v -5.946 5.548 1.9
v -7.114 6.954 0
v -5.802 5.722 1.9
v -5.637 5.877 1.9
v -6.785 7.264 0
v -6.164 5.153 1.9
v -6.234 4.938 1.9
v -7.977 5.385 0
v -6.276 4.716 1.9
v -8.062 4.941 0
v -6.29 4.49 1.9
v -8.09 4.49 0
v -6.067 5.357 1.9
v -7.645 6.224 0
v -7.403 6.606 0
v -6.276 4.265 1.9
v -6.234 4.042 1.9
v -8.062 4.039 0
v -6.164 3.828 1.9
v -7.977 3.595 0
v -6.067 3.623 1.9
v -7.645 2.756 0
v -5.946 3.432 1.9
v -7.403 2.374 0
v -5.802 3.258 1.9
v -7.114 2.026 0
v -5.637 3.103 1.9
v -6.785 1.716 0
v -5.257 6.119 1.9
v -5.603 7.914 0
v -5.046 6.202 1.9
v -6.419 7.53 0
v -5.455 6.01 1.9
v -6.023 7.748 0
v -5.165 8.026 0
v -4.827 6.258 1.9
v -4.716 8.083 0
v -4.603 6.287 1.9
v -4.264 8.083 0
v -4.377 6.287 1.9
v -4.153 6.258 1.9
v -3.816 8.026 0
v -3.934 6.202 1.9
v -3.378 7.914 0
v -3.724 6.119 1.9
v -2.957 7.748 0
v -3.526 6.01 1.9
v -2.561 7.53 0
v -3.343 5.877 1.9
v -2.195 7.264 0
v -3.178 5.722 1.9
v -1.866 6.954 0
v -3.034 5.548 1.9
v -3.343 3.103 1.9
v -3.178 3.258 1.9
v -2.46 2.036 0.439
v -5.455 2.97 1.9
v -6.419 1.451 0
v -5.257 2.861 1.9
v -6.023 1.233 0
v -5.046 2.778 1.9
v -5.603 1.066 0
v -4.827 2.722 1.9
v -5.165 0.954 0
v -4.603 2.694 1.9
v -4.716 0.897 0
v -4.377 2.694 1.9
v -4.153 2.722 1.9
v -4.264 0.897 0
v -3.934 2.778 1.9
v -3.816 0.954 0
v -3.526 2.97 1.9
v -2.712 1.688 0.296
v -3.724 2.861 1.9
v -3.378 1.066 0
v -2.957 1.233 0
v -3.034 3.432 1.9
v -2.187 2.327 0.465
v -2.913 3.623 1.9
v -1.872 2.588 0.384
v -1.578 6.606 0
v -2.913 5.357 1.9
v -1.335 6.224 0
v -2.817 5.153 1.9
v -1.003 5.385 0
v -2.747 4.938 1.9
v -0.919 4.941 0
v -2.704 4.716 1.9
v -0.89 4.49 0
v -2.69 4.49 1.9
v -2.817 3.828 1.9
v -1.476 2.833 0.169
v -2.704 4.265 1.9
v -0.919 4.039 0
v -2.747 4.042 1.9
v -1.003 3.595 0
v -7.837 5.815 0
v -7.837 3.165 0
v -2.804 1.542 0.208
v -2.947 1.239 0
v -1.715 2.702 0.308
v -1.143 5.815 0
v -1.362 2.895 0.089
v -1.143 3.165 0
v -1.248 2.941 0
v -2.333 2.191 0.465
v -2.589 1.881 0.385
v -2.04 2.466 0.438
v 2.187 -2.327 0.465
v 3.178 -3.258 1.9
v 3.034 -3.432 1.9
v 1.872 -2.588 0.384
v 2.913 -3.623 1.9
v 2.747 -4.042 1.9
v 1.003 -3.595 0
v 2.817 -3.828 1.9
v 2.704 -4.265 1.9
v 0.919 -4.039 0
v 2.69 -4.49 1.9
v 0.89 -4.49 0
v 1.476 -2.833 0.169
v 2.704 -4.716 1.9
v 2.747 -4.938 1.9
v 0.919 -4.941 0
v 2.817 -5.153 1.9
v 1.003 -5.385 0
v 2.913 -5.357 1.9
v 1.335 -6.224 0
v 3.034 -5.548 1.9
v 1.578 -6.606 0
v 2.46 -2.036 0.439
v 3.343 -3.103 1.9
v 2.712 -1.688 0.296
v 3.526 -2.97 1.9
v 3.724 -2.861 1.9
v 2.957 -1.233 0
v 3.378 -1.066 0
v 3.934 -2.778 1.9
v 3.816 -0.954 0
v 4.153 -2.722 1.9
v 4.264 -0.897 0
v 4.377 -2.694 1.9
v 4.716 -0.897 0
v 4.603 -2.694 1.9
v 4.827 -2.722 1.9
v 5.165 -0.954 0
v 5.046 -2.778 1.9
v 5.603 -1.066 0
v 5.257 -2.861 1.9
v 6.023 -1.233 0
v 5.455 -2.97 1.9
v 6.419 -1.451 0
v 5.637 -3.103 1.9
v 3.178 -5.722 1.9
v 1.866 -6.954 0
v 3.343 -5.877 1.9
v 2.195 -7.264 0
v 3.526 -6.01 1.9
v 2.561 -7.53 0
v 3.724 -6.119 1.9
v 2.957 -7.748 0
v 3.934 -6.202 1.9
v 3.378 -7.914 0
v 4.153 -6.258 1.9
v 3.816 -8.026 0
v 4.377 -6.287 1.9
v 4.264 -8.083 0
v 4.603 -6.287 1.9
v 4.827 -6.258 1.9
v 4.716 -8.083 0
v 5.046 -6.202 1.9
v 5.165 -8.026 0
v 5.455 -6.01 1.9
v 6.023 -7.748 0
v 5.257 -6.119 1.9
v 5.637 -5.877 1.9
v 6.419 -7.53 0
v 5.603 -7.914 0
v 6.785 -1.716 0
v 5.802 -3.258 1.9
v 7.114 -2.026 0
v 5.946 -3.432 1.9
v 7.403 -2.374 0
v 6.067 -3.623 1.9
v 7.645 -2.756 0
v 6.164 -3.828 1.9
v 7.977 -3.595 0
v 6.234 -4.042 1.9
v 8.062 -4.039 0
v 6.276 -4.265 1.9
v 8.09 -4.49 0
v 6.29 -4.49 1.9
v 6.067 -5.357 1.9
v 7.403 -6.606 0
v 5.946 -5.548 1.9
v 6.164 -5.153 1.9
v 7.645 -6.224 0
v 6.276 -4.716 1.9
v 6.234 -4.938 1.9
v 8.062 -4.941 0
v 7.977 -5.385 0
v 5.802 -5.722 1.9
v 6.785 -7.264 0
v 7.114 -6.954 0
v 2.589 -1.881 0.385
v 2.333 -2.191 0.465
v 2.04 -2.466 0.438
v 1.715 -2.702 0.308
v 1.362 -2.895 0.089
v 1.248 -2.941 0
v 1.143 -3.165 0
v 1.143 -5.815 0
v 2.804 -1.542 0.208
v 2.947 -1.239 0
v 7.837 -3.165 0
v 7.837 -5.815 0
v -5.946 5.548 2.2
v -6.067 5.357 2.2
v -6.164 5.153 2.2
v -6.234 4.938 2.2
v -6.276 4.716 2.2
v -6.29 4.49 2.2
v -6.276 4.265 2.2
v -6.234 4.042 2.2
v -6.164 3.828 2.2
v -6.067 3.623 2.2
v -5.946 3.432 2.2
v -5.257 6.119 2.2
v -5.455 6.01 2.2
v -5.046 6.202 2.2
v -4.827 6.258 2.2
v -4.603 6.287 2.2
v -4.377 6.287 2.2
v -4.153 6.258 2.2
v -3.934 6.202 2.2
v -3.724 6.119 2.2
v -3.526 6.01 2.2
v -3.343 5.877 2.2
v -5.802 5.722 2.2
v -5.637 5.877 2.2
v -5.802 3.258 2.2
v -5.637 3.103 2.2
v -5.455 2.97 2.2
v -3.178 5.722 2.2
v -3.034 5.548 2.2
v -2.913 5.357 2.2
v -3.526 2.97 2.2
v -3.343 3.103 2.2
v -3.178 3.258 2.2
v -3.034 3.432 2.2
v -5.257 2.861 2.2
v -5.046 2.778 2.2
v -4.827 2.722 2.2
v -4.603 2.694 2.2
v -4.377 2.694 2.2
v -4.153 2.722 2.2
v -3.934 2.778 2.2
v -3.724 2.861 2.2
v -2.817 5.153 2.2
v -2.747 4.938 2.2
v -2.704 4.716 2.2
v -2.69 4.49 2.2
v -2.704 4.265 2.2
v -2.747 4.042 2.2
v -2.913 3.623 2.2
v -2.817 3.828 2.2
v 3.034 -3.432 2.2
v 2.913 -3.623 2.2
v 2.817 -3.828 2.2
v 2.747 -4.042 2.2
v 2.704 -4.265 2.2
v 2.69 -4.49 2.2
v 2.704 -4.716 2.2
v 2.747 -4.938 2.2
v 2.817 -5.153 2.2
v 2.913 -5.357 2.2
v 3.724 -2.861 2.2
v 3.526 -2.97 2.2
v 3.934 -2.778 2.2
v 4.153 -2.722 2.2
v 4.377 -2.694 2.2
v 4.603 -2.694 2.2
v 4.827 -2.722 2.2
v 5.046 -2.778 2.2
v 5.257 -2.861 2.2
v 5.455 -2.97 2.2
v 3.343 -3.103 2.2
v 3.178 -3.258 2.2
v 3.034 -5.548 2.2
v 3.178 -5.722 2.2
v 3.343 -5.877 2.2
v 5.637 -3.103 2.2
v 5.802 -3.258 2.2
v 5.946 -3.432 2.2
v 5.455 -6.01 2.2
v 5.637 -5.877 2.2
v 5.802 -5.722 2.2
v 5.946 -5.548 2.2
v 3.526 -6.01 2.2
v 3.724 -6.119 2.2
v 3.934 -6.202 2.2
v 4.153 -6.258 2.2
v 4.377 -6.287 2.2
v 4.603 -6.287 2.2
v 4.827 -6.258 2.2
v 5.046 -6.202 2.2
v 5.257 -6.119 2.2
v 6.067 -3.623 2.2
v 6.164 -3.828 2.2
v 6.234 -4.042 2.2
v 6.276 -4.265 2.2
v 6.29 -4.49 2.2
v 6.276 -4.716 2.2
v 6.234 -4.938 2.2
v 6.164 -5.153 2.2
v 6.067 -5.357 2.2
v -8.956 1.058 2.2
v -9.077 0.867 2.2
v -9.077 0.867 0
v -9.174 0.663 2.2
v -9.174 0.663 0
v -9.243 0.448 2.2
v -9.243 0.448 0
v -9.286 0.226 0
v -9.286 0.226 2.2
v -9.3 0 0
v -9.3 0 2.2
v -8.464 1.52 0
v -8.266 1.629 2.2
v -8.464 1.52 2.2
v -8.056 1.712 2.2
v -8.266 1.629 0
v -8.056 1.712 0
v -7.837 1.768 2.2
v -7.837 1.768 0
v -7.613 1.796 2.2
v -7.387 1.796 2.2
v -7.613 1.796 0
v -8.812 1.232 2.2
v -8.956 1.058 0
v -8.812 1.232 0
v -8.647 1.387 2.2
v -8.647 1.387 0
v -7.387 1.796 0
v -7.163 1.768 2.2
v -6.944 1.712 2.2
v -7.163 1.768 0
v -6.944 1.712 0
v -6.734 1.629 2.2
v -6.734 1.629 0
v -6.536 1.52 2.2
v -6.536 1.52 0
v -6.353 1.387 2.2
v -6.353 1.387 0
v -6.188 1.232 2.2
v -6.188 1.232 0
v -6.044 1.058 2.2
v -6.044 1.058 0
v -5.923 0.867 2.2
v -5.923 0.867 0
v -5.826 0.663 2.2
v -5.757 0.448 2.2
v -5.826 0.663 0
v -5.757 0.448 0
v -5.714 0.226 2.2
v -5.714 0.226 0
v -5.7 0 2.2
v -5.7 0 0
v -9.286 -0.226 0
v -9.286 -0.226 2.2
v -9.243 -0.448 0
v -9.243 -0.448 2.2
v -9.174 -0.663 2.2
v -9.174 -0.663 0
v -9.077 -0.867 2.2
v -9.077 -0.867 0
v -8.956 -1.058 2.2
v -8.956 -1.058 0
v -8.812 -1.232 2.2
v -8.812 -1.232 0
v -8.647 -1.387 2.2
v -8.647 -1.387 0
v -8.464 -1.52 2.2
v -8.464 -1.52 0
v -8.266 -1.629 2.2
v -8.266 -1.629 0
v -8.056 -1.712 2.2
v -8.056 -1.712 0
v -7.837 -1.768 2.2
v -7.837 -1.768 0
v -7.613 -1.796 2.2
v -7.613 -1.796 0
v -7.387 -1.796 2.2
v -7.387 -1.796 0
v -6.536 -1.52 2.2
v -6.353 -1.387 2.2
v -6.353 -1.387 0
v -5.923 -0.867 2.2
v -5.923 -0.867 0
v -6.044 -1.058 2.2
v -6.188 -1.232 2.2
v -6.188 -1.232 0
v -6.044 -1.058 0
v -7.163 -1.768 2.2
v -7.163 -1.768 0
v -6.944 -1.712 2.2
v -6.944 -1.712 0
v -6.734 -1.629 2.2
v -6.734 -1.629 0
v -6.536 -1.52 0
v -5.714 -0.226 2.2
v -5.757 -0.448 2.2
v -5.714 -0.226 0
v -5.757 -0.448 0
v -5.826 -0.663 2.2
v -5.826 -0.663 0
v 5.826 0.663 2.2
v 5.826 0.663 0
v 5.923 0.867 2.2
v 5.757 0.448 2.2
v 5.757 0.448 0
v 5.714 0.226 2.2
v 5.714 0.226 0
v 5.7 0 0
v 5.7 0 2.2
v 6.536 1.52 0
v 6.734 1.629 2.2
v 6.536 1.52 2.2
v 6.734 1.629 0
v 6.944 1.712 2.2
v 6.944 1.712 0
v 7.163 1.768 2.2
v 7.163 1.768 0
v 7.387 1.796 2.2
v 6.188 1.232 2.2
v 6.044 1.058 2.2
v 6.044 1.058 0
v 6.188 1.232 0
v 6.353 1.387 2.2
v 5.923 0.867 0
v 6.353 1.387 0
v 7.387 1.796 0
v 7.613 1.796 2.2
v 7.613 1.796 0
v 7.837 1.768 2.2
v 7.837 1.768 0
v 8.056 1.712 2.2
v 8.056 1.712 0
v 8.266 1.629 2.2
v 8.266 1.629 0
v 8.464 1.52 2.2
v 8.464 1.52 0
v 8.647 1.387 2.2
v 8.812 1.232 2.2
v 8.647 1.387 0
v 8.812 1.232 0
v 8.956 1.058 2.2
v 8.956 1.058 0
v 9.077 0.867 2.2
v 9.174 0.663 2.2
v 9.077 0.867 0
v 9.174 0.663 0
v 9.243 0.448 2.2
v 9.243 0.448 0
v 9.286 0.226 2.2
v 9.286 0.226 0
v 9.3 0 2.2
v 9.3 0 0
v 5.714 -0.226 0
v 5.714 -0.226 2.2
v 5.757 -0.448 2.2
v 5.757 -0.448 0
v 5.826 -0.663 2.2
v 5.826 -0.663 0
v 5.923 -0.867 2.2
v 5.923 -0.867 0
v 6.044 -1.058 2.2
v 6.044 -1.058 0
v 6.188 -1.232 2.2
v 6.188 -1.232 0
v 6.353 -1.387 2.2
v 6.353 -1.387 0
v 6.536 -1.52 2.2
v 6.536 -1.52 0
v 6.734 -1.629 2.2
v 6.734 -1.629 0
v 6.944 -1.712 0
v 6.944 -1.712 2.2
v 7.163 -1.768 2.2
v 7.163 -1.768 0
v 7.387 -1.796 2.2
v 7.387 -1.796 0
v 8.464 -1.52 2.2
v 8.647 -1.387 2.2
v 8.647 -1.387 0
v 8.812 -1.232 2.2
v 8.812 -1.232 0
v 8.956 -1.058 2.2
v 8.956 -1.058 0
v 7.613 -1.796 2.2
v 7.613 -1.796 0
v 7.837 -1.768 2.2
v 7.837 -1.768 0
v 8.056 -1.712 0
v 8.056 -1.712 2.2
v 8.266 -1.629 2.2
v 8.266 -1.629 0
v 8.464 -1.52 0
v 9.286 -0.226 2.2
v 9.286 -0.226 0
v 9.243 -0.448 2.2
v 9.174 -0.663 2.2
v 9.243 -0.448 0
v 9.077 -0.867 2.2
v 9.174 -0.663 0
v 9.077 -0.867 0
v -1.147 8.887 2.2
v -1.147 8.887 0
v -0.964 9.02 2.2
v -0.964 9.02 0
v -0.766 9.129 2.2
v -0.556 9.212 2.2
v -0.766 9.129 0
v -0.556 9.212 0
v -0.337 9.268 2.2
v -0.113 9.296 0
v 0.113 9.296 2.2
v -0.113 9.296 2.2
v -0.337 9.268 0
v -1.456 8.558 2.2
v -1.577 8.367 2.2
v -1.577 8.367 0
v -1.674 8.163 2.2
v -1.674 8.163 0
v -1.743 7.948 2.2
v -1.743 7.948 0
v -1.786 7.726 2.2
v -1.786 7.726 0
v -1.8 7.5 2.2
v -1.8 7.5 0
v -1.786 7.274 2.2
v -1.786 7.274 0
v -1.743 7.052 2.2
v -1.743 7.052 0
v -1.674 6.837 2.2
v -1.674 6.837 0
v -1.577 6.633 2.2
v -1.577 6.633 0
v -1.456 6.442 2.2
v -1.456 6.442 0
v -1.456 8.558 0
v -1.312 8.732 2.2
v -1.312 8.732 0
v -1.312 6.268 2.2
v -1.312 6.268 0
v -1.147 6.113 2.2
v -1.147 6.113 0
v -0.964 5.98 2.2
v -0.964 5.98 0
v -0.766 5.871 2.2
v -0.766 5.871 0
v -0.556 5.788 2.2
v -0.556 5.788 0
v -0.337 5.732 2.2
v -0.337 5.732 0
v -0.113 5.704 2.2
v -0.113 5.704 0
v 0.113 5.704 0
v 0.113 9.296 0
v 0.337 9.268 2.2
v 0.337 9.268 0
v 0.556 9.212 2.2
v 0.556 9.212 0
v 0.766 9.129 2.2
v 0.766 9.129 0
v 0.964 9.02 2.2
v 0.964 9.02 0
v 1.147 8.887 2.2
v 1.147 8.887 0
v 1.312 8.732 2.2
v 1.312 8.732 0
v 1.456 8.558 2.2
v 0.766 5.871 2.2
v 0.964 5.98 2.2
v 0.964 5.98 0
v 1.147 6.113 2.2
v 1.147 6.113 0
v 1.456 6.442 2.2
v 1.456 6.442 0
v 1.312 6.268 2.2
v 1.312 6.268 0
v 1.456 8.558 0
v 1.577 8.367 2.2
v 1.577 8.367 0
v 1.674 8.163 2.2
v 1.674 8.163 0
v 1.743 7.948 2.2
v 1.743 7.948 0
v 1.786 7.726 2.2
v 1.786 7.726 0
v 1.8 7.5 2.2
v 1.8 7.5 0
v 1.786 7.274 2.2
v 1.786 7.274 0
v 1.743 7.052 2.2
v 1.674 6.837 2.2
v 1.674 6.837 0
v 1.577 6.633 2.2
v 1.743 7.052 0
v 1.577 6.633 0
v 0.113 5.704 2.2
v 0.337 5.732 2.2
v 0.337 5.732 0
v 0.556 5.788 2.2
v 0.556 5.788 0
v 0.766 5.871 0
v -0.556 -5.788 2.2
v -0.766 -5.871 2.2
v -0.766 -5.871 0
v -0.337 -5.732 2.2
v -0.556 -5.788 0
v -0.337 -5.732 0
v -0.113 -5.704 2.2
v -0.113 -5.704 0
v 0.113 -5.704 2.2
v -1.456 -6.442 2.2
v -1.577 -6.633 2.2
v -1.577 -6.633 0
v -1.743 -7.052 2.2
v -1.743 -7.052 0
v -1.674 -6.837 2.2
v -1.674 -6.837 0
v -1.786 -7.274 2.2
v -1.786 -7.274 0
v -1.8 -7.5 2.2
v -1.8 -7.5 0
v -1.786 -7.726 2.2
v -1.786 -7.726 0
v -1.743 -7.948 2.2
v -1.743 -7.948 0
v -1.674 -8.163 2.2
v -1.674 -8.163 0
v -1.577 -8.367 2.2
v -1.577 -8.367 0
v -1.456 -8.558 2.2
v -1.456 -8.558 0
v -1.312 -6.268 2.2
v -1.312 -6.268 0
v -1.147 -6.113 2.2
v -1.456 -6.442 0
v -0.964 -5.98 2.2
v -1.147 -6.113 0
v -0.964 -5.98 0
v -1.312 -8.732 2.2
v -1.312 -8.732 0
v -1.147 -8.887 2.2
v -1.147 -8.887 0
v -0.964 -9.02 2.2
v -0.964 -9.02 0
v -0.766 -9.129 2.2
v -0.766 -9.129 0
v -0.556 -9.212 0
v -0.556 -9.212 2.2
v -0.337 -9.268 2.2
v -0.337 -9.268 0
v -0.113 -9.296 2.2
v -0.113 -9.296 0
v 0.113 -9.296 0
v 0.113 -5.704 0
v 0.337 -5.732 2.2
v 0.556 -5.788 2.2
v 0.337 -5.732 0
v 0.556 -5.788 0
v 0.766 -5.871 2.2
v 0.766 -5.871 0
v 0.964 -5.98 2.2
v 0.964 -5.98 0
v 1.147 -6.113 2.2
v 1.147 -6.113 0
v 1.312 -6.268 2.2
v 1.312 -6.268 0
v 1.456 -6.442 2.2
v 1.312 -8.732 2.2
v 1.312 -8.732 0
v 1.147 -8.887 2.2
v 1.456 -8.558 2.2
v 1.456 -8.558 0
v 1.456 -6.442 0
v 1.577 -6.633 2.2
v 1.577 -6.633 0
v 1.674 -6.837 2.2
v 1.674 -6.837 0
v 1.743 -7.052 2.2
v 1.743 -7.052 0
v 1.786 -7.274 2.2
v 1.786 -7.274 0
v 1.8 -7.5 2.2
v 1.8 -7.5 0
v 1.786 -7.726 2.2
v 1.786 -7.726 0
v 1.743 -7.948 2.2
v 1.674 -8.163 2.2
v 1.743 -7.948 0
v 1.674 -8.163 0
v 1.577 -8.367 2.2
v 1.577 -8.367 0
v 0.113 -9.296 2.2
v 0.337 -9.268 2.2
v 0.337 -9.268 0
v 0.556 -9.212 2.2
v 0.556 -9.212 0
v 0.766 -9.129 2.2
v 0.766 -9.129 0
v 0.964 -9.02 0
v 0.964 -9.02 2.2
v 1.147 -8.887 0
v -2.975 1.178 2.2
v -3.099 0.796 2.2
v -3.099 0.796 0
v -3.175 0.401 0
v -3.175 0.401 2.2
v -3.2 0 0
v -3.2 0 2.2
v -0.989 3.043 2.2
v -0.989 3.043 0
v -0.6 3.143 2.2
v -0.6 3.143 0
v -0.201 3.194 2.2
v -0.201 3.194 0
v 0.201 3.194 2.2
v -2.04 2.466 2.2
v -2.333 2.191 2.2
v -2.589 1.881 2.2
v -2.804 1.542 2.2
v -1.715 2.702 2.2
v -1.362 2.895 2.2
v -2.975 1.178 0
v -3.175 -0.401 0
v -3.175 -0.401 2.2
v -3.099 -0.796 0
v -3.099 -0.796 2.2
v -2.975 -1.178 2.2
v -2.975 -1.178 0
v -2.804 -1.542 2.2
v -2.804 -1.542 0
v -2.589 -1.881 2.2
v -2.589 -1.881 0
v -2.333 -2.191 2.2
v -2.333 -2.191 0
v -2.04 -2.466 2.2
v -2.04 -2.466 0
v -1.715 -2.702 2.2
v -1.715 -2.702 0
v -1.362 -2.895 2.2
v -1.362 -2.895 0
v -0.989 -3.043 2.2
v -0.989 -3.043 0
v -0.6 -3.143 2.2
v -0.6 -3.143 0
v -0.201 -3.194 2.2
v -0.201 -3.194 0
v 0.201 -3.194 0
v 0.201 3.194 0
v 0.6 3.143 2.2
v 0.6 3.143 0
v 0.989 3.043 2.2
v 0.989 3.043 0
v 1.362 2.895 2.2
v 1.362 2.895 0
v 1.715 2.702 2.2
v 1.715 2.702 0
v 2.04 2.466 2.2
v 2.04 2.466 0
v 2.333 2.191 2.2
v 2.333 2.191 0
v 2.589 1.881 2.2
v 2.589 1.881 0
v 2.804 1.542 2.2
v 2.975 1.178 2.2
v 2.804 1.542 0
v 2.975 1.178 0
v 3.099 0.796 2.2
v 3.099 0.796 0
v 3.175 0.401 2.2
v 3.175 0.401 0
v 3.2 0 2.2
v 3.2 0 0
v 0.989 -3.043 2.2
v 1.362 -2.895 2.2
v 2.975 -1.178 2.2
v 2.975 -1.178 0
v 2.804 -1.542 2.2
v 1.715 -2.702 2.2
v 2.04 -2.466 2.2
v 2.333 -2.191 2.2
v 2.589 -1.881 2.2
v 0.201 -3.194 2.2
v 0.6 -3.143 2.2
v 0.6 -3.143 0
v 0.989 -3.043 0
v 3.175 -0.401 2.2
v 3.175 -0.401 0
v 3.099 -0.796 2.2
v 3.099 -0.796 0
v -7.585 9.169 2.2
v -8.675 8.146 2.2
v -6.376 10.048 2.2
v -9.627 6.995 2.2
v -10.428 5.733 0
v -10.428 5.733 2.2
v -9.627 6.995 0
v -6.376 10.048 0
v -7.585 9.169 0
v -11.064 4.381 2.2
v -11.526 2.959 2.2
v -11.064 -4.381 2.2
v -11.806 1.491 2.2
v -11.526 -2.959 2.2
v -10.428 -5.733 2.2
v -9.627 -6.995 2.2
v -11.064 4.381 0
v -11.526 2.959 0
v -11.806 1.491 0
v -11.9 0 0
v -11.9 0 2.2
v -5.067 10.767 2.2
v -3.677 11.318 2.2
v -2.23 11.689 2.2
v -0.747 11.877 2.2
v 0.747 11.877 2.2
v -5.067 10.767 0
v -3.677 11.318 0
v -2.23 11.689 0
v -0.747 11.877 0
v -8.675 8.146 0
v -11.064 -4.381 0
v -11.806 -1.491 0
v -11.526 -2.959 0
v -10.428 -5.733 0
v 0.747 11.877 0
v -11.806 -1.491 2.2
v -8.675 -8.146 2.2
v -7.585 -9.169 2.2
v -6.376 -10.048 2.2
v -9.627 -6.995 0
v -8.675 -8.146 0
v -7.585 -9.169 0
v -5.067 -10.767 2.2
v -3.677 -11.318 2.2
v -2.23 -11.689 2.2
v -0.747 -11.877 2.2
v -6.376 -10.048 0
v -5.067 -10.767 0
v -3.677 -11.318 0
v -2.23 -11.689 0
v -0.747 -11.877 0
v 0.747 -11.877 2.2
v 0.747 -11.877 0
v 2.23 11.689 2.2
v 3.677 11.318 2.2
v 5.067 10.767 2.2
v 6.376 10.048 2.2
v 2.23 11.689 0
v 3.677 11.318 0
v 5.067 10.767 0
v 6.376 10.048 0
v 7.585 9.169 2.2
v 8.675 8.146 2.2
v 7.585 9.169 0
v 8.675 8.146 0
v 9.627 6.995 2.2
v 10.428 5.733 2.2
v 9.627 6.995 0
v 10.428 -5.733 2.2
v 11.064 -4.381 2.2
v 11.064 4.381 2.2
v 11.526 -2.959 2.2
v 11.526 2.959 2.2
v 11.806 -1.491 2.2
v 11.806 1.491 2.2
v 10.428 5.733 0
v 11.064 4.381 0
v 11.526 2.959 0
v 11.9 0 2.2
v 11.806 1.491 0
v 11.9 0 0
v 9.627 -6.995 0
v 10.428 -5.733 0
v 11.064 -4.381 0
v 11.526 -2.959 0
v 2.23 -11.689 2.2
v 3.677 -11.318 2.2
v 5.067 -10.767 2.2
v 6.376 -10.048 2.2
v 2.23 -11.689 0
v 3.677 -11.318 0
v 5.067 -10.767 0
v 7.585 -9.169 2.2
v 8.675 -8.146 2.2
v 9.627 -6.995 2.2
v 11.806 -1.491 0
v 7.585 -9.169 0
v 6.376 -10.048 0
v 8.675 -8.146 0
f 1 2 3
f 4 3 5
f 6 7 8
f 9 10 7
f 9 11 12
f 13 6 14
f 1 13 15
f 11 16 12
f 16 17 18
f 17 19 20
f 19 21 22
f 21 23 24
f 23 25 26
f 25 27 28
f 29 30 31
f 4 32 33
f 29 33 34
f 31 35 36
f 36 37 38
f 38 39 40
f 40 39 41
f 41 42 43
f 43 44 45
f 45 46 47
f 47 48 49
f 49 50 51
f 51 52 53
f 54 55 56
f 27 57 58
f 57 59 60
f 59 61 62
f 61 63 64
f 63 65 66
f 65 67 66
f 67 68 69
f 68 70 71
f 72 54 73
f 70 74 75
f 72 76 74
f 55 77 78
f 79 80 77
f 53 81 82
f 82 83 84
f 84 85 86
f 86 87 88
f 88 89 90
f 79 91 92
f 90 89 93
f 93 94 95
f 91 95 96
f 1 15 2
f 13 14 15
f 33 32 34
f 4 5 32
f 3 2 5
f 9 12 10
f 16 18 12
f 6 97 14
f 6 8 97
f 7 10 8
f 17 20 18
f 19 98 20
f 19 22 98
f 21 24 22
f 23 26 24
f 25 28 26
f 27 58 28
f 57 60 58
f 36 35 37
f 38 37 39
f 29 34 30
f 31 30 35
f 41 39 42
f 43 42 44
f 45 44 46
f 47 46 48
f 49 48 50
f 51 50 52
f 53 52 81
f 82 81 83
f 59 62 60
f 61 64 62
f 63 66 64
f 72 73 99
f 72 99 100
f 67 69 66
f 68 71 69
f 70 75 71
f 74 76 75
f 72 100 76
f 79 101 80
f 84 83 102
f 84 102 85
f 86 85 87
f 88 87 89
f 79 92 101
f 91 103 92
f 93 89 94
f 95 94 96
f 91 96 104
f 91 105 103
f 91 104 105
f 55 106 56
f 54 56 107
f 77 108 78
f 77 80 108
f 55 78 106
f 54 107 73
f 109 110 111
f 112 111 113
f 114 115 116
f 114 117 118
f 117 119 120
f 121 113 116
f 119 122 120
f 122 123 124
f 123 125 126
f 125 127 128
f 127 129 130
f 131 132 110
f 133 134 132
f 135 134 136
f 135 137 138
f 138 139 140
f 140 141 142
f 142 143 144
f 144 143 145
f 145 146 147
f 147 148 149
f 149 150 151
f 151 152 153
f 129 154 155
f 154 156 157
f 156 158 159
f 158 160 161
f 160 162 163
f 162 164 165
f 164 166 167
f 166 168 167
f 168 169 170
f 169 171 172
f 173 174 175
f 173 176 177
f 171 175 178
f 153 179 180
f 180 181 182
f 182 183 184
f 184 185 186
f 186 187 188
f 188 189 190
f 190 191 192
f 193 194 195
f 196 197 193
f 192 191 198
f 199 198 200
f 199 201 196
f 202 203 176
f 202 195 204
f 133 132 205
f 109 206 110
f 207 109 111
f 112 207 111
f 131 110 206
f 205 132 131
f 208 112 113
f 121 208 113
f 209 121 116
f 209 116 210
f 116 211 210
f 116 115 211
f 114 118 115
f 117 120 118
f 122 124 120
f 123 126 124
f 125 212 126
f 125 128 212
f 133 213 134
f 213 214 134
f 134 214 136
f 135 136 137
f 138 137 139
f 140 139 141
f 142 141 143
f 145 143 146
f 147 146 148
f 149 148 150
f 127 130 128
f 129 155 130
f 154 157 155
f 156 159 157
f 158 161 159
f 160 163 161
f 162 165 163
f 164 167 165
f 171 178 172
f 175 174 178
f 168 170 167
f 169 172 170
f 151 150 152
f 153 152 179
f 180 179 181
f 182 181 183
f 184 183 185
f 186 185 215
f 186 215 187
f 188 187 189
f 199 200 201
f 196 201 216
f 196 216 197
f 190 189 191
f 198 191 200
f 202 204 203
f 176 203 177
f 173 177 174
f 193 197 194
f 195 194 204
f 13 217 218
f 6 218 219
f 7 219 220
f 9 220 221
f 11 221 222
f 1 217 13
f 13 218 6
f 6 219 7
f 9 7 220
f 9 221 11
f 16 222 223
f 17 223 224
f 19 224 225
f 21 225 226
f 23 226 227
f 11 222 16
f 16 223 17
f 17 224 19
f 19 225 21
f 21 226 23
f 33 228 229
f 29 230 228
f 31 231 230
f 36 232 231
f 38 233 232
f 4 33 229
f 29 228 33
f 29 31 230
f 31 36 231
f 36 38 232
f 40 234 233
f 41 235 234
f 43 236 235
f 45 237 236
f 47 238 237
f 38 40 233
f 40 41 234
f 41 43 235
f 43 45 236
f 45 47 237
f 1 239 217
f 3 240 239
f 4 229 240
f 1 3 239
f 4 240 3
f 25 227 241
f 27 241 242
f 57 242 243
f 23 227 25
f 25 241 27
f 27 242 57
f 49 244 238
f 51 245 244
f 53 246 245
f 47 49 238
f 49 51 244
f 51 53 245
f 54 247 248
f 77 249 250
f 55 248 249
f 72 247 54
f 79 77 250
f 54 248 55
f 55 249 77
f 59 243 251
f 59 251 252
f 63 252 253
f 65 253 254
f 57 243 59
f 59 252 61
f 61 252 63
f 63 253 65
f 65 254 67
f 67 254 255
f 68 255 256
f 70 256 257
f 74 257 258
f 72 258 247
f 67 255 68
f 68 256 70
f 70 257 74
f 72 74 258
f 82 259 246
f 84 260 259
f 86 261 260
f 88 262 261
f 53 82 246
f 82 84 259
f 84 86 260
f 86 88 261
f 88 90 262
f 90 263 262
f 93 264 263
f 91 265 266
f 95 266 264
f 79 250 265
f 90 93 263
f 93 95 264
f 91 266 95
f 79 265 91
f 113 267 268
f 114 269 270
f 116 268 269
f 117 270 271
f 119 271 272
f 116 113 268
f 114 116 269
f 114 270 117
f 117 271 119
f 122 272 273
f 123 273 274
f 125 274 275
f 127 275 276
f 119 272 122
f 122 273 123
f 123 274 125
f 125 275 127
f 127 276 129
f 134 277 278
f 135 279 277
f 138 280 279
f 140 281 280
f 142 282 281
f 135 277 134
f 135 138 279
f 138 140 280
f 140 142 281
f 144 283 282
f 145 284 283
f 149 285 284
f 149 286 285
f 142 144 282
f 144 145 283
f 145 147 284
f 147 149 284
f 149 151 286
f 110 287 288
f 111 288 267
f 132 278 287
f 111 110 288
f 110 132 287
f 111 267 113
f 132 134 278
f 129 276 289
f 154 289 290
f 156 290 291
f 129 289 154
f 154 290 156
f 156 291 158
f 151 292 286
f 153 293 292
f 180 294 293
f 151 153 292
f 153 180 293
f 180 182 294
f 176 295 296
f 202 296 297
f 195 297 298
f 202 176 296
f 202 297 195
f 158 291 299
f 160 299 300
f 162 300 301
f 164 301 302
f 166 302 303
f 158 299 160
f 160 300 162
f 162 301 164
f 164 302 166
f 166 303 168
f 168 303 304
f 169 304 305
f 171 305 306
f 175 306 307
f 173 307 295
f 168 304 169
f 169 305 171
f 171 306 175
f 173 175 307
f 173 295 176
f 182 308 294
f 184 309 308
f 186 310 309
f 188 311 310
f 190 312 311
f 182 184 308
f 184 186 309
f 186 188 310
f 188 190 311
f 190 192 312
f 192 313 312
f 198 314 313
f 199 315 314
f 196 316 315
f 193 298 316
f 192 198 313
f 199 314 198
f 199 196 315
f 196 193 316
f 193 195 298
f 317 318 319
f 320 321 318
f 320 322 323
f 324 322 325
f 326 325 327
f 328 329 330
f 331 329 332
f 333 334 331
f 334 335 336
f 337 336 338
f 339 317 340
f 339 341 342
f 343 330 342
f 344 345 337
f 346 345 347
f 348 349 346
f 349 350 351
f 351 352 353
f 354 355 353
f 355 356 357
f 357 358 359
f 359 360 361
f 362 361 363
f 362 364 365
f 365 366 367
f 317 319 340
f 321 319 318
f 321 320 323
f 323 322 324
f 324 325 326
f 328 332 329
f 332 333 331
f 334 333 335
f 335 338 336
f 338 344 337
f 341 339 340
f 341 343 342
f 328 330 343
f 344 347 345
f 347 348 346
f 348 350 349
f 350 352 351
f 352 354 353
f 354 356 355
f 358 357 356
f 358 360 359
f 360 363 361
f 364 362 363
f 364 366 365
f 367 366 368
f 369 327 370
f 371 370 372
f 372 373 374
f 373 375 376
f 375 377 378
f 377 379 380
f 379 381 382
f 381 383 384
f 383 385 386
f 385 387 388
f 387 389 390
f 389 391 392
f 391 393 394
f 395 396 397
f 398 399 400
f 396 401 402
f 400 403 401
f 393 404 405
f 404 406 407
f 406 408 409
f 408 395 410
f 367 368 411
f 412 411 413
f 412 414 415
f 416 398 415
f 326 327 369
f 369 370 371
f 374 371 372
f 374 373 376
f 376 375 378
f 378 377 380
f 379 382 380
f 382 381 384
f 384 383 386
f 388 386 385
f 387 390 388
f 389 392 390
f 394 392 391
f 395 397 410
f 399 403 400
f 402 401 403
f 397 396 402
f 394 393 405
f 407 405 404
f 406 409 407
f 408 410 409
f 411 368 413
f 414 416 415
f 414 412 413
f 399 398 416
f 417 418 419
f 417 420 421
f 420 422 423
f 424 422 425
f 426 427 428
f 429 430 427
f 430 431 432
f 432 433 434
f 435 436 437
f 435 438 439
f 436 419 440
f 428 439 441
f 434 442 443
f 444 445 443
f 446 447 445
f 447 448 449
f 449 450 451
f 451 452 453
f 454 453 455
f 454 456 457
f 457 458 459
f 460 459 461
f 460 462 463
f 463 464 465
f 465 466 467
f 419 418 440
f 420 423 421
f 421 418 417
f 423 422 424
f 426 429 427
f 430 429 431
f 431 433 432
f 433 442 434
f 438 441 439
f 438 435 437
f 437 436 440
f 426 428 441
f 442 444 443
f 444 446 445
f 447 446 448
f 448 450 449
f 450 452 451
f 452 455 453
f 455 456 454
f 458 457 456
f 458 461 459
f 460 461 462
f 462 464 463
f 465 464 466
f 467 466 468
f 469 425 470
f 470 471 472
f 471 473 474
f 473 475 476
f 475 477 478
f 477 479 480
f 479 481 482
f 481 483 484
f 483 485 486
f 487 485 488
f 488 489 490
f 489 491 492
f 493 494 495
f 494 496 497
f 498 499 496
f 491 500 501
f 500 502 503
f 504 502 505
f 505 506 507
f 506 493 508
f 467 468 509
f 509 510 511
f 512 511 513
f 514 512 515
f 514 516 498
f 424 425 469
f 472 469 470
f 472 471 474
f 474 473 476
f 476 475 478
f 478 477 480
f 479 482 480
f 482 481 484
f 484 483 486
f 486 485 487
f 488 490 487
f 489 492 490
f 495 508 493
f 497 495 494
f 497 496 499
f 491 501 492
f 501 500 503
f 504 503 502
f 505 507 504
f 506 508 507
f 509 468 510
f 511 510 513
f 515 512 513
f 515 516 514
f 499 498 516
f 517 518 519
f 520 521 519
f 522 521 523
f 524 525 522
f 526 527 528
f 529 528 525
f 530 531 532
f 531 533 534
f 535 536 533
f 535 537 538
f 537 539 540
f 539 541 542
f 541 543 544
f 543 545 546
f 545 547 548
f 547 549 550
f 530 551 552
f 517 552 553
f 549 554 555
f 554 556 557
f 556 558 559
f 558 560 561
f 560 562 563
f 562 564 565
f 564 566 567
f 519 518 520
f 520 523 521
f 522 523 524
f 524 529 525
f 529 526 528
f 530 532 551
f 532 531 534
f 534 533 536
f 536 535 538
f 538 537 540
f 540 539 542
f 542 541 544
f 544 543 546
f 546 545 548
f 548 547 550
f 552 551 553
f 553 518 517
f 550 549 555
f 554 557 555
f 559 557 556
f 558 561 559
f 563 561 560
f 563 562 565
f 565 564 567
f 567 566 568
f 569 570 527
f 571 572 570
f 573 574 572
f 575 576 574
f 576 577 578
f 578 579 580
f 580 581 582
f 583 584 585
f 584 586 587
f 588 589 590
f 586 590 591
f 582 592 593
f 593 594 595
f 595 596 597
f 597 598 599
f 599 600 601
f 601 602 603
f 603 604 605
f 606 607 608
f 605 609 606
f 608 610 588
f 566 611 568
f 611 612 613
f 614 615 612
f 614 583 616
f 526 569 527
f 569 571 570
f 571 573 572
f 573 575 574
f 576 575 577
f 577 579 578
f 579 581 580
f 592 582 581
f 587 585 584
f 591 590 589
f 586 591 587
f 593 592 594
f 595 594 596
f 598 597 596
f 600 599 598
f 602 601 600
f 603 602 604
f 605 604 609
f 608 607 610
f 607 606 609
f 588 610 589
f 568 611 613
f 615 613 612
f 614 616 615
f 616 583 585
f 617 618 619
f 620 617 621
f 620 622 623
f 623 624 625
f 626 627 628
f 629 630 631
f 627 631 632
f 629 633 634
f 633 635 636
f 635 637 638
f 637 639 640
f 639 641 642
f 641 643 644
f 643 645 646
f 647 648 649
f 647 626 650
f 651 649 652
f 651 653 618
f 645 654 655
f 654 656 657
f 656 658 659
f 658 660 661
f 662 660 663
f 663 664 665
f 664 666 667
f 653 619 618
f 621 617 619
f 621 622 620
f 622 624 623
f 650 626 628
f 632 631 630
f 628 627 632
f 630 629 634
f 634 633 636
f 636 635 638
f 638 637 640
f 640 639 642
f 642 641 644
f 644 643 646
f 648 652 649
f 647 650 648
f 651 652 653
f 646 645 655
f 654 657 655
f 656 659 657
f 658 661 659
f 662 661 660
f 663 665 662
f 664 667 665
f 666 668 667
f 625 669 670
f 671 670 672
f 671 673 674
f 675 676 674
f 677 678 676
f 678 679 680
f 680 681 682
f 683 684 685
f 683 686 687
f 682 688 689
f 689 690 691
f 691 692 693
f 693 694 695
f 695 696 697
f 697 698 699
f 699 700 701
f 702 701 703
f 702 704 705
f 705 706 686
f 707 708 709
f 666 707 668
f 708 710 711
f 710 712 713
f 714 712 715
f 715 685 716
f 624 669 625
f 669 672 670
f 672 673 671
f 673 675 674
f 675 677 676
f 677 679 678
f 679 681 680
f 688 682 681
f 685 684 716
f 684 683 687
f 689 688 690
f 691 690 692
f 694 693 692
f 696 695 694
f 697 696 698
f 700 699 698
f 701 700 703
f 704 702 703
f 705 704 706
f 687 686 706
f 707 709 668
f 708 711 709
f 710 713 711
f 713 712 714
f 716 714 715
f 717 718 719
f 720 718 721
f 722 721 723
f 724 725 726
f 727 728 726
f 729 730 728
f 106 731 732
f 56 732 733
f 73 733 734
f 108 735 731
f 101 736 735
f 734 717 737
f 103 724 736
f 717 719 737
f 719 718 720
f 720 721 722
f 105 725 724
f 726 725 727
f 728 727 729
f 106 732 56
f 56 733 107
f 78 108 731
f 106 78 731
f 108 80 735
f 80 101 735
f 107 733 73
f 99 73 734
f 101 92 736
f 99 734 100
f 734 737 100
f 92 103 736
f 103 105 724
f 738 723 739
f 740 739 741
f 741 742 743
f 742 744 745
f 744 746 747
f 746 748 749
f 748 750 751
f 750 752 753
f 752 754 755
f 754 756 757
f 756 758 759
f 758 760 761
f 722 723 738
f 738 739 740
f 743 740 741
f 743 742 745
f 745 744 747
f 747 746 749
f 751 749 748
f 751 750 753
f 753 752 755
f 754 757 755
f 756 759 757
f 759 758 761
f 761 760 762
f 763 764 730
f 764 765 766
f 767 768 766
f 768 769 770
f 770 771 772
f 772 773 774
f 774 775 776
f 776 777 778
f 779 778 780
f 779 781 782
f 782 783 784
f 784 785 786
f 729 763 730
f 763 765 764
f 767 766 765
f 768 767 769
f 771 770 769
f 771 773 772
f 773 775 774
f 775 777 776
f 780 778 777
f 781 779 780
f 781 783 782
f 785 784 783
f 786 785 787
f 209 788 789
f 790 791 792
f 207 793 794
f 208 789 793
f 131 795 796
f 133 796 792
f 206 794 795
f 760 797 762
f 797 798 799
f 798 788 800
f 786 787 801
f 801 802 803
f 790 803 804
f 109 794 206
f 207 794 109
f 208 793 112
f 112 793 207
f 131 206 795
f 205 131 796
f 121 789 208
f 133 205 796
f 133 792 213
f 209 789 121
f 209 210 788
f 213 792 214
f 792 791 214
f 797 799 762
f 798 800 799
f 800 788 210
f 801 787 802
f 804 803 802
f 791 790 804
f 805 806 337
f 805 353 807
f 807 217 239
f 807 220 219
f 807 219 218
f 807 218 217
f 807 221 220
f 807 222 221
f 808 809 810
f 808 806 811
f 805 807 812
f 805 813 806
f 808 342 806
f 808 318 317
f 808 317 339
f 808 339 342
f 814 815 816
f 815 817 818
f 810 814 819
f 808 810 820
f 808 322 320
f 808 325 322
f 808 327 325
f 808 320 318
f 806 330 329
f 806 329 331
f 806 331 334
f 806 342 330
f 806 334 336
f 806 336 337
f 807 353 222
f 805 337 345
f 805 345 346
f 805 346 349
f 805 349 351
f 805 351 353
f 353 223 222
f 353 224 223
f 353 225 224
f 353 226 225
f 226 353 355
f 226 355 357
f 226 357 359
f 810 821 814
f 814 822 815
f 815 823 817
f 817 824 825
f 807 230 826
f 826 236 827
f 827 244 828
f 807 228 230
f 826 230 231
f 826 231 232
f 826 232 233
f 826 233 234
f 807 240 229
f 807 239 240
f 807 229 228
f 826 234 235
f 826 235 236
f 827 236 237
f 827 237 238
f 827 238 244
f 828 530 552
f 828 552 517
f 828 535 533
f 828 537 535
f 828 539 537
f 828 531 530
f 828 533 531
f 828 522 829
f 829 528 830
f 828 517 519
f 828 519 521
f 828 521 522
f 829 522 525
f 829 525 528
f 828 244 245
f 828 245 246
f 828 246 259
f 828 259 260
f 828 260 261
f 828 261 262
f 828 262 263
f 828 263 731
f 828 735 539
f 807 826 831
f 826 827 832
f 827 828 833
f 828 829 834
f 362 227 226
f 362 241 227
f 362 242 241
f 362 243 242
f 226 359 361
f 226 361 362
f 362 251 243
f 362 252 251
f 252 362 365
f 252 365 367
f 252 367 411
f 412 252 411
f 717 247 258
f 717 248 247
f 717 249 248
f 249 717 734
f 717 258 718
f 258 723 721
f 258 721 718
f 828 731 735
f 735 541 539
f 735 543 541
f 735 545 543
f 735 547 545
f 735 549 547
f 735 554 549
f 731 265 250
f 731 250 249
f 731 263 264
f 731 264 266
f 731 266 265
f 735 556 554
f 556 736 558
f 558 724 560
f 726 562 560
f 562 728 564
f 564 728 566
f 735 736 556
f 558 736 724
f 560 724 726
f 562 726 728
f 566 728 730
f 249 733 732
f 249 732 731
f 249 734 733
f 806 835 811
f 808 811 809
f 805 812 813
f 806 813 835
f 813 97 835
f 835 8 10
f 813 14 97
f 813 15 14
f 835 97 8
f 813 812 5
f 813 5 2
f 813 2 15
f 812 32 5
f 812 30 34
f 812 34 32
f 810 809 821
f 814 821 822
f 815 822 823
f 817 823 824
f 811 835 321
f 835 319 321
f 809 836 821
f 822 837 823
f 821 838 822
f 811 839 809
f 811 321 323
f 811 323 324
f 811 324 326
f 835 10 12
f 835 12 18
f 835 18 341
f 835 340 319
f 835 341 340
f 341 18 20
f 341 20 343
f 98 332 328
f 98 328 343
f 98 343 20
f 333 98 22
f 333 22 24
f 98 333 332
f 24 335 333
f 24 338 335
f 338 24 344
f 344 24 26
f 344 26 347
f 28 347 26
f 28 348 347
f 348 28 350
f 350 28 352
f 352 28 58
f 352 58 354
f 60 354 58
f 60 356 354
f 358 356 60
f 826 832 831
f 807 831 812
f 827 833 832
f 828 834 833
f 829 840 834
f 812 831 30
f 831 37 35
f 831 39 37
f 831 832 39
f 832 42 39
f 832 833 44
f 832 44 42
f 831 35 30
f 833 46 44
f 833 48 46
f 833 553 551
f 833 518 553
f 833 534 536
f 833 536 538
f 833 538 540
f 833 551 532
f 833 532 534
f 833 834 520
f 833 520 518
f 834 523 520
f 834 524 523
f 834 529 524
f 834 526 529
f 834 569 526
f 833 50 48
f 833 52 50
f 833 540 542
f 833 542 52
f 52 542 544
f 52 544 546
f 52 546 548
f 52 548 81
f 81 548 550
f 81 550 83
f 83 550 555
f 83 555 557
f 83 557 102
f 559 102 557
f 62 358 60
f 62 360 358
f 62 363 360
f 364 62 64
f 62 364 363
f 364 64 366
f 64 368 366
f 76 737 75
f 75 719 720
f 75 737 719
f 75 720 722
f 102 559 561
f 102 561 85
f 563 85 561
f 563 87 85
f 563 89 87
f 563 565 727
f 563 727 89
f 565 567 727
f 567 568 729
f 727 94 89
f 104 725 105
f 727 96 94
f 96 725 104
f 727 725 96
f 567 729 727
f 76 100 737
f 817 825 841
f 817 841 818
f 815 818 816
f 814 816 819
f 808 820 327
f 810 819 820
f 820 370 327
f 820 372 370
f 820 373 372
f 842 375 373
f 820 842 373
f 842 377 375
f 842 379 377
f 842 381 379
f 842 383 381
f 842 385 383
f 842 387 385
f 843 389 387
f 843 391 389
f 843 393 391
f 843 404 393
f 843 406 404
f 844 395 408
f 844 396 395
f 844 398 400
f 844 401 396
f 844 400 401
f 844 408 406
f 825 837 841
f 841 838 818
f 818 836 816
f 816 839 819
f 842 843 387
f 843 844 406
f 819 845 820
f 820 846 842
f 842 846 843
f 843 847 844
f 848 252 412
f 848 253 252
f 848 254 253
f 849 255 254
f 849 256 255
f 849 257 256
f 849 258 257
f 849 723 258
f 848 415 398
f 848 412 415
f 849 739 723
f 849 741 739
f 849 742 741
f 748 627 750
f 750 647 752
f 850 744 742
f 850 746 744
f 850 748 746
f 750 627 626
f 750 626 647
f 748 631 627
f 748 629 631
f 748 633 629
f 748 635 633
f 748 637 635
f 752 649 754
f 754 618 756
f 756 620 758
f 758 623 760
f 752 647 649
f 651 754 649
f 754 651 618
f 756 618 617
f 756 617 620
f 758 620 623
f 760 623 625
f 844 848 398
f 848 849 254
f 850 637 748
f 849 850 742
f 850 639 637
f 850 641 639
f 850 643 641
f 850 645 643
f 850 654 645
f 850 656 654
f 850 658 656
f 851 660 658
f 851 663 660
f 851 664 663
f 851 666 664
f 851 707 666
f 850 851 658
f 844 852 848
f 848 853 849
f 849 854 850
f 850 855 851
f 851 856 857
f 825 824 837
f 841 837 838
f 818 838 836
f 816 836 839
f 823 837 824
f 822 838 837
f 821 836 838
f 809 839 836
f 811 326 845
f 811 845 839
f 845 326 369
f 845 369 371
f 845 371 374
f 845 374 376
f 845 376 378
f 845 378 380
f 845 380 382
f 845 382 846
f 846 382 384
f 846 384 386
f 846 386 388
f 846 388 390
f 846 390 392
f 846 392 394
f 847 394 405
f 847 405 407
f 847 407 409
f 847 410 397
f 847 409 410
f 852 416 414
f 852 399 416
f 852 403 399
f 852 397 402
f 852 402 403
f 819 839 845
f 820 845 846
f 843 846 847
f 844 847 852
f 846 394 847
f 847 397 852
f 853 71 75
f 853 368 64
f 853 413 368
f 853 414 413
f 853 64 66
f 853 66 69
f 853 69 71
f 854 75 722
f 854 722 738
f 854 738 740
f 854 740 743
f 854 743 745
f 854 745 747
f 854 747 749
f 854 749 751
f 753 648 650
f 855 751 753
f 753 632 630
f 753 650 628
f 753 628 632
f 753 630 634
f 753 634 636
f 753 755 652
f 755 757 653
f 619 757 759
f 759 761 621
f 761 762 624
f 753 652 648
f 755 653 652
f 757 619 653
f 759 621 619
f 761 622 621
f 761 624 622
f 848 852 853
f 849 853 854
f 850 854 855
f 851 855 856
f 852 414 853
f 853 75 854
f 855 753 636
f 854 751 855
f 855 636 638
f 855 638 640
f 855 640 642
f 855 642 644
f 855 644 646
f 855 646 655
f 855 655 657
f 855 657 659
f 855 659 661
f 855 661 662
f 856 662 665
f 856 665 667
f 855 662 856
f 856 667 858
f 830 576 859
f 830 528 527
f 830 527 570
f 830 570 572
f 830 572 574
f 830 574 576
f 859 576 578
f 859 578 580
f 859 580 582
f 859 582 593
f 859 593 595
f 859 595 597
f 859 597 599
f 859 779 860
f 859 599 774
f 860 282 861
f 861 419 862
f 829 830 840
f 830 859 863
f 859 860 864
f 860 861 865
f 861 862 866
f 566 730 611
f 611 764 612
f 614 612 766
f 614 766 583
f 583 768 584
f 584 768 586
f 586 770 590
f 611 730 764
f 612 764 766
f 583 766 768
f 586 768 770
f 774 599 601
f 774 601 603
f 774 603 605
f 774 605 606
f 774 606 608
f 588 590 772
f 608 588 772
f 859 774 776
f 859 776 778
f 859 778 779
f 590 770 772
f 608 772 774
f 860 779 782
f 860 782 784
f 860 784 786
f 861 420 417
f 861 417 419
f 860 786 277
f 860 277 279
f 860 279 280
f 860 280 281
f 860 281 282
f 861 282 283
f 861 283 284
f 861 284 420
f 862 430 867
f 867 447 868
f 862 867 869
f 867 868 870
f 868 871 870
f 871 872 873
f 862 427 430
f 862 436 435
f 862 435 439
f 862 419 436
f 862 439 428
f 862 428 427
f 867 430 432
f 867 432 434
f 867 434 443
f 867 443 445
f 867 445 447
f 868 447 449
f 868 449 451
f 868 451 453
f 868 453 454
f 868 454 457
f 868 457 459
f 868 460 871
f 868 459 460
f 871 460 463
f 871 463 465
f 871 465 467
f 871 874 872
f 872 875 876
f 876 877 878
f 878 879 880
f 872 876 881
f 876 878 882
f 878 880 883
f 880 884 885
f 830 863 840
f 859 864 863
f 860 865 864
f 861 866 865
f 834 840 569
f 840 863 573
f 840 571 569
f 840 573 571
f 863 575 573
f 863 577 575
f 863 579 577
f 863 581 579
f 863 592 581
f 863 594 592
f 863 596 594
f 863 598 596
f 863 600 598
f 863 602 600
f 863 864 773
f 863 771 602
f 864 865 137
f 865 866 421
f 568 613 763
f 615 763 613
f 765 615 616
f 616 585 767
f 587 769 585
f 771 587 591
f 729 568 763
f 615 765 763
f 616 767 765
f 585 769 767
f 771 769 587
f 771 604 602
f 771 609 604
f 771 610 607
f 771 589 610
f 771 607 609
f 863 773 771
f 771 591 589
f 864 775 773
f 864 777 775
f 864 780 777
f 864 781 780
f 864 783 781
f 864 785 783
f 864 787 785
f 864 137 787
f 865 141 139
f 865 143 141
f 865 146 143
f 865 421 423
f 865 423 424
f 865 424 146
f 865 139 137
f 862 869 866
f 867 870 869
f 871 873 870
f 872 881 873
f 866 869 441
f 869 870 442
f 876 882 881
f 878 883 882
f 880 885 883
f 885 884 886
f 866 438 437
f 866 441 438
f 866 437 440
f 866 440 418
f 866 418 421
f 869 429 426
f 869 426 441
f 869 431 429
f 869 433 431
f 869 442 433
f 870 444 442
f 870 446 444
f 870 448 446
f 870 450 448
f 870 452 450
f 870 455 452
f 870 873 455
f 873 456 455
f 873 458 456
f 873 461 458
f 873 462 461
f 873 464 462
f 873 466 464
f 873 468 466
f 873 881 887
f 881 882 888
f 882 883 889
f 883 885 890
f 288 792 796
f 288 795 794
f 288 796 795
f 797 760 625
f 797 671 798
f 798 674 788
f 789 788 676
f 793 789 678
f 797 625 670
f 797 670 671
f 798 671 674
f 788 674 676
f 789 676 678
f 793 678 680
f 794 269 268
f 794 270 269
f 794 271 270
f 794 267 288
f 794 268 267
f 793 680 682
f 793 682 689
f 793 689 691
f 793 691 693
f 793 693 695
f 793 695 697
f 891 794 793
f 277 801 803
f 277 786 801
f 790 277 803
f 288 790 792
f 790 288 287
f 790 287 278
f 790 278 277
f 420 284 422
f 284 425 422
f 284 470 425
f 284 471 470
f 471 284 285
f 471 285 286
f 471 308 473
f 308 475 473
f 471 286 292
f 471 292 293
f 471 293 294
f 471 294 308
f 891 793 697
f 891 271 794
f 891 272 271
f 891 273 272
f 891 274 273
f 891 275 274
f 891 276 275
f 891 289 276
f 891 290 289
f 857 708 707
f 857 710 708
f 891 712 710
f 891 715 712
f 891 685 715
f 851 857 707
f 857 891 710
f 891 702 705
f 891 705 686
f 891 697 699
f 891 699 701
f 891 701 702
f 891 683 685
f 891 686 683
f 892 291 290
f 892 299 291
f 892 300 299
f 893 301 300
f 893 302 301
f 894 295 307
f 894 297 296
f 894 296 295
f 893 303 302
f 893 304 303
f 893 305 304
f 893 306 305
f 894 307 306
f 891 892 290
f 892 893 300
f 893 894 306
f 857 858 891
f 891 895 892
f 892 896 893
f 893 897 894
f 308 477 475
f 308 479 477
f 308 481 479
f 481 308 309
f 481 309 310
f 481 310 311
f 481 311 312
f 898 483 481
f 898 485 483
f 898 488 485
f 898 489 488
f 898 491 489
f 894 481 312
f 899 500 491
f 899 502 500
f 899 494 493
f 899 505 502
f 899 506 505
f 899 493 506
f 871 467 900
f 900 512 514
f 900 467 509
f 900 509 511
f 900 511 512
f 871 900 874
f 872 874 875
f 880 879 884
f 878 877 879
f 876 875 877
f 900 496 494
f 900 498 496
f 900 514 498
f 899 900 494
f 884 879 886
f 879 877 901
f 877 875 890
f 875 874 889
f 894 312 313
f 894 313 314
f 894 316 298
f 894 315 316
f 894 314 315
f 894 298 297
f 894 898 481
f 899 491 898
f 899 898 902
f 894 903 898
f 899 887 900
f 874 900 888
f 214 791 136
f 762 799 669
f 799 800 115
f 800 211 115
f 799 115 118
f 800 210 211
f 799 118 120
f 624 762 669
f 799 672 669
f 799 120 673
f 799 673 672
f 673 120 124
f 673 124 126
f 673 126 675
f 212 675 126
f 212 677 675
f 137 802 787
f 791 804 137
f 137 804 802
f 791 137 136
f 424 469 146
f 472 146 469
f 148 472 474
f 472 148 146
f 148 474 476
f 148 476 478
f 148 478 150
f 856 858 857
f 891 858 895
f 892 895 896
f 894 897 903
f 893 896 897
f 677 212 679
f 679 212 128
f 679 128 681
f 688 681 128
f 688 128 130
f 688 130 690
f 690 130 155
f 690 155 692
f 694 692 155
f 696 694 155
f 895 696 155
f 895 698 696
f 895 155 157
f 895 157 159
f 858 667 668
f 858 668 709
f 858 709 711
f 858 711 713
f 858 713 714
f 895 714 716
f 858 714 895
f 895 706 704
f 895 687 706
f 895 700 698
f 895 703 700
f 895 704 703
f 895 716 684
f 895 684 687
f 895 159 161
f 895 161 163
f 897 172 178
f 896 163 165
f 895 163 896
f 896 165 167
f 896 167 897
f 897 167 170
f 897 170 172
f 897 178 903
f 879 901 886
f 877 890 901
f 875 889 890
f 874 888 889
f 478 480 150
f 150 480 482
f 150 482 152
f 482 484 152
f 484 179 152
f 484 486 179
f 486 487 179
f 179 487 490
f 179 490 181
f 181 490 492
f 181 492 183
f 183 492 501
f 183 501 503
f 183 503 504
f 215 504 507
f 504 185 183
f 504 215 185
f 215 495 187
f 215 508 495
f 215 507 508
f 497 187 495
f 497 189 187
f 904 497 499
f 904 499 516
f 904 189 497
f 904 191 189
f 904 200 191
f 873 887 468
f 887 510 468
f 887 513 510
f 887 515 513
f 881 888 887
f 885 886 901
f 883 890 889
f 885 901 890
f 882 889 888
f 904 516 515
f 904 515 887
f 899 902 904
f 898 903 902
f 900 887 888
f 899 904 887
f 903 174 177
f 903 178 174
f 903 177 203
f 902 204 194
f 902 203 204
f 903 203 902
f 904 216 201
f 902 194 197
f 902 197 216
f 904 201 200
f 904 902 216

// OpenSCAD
$fn = 50;

difference() {
	union() {
		translate(v = [0, 0, 21.6]) {
			rotate(a = [180, 0, 0]) {
				difference() {
					union() {
						translate(v = [0, 0, 19.4]) {
							cylinder(h = 2.2, r = 11.9);
						}
					}
					union() {
						translate(v = [-4.490128060534576, -4.490128060534576, 21.6]) {
							rotate(a = [0, 0, 0]) {
								difference() {
									union() {
										translate(v = [0, 0, -10.0]) {
											cylinder(h = 10, r = 1.5);
										}
										translate(v = [0, 0, -1.9]) {
											cylinder(h = 1.9, r1 = 1.8, r2 = 3.6);
										}
										cylinder(h = 250, r = 3.6);
										translate(v = [0, 0, -10.0]) {
											cylinder(h = 10, r = 1.8);
										}
										translate(v = [0, 0, -10.0]) {
											cylinder(h = 10, r = 1.5);
										}
									}
									union();
								}
							}
						}
						translate(v = [4.490128060534576, 4.490128060534576, 21.6]) {
							rotate(a = [0, 0, 0]) {
								difference() {
									union() {
										translate(v = [0, 0, -10.0]) {
											cylinder(h = 10, r = 1.5);
										}
										translate(v = [0, 0, -1.9]) {
											cylinder(h = 1.9, r1 = 1.8, r2 = 3.6);
										}
										cylinder(h = 250, r = 3.6);
										translate(v = [0, 0, -10.0]) {
											cylinder(h = 10, r = 1.8);
										}
										translate(v = [0, 0, -10.0]) {
											cylinder(h = 10, r = 1.5);
										}
									}
									union();
								}
							}
						}
						translate(v = [-7.5, 0, 18.4]) {
							cylinder(h = 4.2, r = 1.8);
						}
						translate(v = [7.5, 0, 18.4]) {
							cylinder(h = 4.2, r = 1.8);
						}
						translate(v = [0, -7.5, 18.4]) {
							cylinder(h = 4.2, r = 1.8);
						}
						translate(v = [0, 7.5, 18.4]) {
							cylinder(h = 4.2, r = 1.8);
						}
						translate(v = [0, 0, 19.2]) {
							cylinder(h = 4.2, r = 3.2);
						}
					}
				}
			}
		}
	}
	union();
}
